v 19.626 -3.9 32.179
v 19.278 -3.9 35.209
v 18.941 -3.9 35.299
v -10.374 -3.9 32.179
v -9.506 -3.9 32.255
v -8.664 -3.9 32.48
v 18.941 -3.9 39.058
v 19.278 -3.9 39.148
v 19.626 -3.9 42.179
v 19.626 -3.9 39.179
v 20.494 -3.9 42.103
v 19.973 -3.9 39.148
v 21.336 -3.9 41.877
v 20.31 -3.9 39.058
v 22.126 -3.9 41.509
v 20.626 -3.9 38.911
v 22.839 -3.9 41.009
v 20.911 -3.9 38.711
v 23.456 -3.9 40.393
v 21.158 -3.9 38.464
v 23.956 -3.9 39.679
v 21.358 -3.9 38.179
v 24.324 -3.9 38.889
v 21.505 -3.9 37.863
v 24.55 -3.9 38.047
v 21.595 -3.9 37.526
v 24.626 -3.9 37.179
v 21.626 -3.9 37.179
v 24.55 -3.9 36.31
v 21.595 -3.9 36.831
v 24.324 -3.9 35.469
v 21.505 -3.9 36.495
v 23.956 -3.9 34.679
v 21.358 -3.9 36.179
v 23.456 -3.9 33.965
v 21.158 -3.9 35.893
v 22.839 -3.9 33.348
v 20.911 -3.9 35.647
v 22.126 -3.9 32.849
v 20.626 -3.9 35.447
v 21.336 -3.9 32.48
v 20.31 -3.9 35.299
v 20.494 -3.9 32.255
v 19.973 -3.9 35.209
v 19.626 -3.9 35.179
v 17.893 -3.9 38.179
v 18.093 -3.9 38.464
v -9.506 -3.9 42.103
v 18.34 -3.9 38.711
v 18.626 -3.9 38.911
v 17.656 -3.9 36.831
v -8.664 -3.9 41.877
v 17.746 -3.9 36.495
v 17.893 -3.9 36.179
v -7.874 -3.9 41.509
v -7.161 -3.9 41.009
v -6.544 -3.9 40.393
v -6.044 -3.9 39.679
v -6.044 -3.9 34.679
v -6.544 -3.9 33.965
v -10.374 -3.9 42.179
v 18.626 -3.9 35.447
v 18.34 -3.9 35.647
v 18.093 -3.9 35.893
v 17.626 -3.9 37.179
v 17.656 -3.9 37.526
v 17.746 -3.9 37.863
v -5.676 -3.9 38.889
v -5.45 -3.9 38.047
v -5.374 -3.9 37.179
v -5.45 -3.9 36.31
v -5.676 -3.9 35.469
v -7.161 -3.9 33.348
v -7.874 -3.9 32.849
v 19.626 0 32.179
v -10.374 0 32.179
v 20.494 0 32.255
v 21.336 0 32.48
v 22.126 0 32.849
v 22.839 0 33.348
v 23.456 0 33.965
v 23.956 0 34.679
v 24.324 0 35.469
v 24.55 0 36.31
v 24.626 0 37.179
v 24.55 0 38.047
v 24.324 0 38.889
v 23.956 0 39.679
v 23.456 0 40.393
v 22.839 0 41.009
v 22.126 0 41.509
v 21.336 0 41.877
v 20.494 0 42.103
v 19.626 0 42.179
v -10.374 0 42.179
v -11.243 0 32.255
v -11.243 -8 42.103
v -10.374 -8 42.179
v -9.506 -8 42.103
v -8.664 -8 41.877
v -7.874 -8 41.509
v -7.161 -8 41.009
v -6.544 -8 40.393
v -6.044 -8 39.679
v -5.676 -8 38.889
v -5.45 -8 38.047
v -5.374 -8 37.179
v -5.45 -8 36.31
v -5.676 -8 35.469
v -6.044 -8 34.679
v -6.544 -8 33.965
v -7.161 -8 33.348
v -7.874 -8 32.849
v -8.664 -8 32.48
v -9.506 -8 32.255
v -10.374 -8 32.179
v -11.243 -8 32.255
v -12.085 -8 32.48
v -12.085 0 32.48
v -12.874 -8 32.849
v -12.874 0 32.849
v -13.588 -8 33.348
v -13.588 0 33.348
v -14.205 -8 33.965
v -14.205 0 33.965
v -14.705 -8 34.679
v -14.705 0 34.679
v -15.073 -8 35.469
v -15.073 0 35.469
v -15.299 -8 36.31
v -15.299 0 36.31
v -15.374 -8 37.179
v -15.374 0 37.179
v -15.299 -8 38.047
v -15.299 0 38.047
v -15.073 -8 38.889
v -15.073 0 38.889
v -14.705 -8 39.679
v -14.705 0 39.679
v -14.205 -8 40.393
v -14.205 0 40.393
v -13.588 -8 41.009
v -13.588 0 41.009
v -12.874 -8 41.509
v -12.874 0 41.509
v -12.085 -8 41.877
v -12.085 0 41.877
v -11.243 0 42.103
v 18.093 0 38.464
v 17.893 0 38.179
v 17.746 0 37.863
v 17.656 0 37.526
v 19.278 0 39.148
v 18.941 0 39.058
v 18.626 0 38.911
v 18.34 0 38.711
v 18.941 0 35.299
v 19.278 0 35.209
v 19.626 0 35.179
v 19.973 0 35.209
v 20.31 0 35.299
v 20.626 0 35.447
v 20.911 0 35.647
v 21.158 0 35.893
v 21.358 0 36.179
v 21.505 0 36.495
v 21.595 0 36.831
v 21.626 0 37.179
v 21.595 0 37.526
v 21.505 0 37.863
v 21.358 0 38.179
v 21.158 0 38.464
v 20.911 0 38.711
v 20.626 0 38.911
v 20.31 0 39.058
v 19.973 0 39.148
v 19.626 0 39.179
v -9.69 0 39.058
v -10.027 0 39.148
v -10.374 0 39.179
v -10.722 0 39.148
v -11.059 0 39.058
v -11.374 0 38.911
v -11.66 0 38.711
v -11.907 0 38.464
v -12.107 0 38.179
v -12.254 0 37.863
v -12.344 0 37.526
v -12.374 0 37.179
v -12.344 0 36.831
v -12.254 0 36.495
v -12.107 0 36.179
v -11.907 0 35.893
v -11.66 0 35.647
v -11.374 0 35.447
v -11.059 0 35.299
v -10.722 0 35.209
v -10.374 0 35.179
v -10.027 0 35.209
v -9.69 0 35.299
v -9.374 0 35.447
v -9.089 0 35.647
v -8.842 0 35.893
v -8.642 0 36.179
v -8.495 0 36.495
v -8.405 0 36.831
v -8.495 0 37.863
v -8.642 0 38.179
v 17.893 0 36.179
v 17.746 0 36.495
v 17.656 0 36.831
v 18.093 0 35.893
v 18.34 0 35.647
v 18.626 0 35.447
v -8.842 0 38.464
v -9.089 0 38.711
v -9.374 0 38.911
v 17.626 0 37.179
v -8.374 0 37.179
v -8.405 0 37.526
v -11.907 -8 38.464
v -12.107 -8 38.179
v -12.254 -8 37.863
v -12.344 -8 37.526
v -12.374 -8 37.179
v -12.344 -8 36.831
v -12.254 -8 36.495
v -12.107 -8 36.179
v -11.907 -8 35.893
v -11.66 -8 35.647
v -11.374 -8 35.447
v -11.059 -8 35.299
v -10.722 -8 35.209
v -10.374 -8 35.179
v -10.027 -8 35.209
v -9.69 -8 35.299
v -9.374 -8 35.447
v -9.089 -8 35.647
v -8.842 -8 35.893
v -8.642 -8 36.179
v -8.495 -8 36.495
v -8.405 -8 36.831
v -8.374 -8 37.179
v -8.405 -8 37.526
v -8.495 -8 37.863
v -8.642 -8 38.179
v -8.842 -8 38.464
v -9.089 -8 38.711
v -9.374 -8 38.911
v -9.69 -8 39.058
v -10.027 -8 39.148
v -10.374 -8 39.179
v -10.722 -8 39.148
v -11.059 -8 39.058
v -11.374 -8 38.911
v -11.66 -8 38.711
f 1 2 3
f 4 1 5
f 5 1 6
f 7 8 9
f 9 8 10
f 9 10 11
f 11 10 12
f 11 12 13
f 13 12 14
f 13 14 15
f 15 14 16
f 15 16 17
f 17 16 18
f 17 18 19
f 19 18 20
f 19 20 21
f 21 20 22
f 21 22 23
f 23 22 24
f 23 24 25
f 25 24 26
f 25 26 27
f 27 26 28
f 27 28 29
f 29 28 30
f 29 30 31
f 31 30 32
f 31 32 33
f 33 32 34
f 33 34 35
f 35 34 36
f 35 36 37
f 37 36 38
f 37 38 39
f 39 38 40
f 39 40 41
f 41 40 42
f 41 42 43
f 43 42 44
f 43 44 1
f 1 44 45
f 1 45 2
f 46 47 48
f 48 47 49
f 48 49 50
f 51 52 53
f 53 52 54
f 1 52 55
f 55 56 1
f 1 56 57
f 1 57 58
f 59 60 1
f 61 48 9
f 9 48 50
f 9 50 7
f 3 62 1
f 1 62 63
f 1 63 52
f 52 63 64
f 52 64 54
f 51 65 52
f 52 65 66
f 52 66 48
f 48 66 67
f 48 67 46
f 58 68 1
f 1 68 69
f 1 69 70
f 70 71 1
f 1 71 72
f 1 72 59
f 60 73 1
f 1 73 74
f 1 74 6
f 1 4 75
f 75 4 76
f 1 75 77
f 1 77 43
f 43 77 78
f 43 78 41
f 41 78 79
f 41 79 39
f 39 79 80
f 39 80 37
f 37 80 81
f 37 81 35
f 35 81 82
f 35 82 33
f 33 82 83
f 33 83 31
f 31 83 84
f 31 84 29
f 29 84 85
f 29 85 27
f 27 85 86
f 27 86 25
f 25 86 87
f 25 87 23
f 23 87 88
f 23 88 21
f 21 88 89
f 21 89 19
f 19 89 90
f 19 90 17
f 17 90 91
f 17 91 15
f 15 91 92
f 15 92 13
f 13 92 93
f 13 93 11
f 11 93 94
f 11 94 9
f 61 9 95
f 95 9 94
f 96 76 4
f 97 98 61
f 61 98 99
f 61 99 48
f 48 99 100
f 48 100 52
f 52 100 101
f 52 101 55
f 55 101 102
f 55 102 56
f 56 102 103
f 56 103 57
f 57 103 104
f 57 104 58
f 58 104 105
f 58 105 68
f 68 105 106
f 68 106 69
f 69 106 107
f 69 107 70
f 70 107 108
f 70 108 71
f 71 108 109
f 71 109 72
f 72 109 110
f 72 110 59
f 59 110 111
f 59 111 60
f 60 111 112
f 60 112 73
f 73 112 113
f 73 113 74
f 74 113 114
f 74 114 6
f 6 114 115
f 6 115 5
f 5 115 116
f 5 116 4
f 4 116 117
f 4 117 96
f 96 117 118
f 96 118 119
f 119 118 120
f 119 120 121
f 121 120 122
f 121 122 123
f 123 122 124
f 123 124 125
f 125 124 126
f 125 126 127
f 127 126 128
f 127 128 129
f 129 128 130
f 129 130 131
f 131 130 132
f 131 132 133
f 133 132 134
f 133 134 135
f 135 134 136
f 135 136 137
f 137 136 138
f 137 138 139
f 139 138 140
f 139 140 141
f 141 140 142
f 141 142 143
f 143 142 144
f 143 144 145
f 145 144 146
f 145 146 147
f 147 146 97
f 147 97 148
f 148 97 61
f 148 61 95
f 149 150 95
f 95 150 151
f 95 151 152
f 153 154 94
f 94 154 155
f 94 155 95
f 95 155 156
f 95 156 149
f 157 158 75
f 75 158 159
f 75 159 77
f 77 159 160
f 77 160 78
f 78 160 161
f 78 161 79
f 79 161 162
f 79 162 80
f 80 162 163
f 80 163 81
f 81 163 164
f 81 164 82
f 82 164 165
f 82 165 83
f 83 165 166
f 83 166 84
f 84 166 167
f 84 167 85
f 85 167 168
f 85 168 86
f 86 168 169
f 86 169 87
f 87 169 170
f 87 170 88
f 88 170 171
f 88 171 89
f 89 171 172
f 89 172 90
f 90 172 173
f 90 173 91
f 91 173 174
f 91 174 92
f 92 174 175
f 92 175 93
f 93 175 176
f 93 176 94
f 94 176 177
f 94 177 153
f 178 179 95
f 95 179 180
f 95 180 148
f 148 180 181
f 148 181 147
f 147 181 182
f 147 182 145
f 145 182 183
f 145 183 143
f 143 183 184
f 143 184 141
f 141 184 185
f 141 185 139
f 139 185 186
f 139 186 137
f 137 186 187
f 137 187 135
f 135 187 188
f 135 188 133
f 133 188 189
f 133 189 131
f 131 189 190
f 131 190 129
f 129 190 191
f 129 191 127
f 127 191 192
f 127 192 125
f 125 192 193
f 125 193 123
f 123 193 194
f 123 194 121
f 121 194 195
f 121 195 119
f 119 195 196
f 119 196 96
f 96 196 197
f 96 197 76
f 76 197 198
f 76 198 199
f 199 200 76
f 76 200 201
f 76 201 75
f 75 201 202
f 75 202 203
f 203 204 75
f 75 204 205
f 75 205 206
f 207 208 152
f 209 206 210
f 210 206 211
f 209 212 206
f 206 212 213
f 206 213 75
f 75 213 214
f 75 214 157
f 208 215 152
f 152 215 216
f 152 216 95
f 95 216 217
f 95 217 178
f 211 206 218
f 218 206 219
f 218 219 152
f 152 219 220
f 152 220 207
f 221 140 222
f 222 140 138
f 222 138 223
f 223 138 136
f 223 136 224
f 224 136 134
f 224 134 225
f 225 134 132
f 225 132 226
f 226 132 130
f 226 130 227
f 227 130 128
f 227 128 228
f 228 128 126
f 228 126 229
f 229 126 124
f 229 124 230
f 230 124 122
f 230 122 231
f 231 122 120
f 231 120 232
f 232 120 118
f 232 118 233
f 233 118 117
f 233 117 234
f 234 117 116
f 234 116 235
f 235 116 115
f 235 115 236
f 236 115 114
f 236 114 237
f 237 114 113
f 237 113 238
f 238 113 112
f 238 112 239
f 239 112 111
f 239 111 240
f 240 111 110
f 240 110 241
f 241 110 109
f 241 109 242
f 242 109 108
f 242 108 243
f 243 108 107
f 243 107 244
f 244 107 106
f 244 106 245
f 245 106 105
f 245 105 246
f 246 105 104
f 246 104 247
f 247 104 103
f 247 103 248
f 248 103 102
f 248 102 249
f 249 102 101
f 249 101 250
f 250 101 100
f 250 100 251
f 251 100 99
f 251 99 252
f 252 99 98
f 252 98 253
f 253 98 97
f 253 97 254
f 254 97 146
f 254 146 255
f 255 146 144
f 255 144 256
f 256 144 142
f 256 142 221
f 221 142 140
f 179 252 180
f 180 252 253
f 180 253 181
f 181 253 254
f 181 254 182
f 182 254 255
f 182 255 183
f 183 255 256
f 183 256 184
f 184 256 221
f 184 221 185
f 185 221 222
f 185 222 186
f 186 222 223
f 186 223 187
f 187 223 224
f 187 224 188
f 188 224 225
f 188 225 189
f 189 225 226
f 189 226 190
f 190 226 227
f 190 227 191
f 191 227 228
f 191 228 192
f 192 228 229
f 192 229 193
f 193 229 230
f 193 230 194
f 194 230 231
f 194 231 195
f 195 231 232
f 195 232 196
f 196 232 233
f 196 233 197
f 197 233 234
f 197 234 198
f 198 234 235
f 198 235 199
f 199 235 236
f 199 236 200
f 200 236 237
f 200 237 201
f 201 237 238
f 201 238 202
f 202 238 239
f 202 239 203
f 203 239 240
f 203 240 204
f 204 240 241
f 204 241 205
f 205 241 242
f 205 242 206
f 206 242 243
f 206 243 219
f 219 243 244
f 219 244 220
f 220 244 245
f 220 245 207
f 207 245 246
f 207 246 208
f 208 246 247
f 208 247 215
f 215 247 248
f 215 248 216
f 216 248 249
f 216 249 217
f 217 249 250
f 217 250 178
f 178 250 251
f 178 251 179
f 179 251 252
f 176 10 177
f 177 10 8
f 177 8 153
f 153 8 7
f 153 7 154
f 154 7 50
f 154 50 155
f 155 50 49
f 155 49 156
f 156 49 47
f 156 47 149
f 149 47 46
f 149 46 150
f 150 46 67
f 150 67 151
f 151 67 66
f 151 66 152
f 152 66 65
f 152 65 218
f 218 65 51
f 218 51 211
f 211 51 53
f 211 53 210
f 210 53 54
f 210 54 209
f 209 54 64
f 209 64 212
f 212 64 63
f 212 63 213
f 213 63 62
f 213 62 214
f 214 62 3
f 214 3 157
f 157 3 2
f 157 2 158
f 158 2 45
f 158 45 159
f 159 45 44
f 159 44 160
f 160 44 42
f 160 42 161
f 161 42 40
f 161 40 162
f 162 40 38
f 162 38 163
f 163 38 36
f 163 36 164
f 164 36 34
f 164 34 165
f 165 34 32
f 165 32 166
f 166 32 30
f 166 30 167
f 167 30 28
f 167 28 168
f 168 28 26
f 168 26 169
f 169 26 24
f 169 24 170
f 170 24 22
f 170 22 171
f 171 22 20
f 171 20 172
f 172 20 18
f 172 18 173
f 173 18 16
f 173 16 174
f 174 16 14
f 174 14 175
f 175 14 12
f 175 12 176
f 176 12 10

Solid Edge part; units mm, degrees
sketch "Sketch1" plane through (0, 0, 0) normal (0, -1, 0) x (1, 0, 0)
  line L0 (-10.3745, 32.1787) -> (19.6255, 32.1787)
  arc A0 (19.6255, 32.1787) -> (24.6255, 37.1787) centre (19.6255, 37.1787) ccw
  arc A1 (19.6255, 42.1787) -> (24.6255, 37.1787) centre (19.6255, 37.1787) cw
  line L1 (19.6255, 42.1787) -> (-10.3745, 42.1787)
  arc A2 (-10.3745, 42.1787) -> (-15.3745, 37.1787) centre (-10.3745, 37.1787) ccw
  arc A3 (-15.3745, 37.1787) -> (-10.3745, 32.1787) centre (-10.3745, 37.1787) ccw
extrude "Protrusion1" add sketch "Sketch1" along normal blind 3.9
sketch "Sketch2" plane through (4.6255, -3.9, 37.1787) normal (0, -1, 0) x (-1, 0, 0)
  arc A0 (15, -5) -> (15, 5) centre (15, 0) cw
  arc A1 (15, 5) -> (15, -5) centre (15, 0) cw
extrude "Extrusionsausprägung_4" add sketch "Sketch2" along normal blind 4.1
hole "Bohrung_1" at (-10.3745, 0, 37.1787) direction (0, -1, 0) diameter 4 end through all
hole "Hole1" at (19.6255, 0, 37.1787) direction (0, -1, 0) diameter 4 end through all
